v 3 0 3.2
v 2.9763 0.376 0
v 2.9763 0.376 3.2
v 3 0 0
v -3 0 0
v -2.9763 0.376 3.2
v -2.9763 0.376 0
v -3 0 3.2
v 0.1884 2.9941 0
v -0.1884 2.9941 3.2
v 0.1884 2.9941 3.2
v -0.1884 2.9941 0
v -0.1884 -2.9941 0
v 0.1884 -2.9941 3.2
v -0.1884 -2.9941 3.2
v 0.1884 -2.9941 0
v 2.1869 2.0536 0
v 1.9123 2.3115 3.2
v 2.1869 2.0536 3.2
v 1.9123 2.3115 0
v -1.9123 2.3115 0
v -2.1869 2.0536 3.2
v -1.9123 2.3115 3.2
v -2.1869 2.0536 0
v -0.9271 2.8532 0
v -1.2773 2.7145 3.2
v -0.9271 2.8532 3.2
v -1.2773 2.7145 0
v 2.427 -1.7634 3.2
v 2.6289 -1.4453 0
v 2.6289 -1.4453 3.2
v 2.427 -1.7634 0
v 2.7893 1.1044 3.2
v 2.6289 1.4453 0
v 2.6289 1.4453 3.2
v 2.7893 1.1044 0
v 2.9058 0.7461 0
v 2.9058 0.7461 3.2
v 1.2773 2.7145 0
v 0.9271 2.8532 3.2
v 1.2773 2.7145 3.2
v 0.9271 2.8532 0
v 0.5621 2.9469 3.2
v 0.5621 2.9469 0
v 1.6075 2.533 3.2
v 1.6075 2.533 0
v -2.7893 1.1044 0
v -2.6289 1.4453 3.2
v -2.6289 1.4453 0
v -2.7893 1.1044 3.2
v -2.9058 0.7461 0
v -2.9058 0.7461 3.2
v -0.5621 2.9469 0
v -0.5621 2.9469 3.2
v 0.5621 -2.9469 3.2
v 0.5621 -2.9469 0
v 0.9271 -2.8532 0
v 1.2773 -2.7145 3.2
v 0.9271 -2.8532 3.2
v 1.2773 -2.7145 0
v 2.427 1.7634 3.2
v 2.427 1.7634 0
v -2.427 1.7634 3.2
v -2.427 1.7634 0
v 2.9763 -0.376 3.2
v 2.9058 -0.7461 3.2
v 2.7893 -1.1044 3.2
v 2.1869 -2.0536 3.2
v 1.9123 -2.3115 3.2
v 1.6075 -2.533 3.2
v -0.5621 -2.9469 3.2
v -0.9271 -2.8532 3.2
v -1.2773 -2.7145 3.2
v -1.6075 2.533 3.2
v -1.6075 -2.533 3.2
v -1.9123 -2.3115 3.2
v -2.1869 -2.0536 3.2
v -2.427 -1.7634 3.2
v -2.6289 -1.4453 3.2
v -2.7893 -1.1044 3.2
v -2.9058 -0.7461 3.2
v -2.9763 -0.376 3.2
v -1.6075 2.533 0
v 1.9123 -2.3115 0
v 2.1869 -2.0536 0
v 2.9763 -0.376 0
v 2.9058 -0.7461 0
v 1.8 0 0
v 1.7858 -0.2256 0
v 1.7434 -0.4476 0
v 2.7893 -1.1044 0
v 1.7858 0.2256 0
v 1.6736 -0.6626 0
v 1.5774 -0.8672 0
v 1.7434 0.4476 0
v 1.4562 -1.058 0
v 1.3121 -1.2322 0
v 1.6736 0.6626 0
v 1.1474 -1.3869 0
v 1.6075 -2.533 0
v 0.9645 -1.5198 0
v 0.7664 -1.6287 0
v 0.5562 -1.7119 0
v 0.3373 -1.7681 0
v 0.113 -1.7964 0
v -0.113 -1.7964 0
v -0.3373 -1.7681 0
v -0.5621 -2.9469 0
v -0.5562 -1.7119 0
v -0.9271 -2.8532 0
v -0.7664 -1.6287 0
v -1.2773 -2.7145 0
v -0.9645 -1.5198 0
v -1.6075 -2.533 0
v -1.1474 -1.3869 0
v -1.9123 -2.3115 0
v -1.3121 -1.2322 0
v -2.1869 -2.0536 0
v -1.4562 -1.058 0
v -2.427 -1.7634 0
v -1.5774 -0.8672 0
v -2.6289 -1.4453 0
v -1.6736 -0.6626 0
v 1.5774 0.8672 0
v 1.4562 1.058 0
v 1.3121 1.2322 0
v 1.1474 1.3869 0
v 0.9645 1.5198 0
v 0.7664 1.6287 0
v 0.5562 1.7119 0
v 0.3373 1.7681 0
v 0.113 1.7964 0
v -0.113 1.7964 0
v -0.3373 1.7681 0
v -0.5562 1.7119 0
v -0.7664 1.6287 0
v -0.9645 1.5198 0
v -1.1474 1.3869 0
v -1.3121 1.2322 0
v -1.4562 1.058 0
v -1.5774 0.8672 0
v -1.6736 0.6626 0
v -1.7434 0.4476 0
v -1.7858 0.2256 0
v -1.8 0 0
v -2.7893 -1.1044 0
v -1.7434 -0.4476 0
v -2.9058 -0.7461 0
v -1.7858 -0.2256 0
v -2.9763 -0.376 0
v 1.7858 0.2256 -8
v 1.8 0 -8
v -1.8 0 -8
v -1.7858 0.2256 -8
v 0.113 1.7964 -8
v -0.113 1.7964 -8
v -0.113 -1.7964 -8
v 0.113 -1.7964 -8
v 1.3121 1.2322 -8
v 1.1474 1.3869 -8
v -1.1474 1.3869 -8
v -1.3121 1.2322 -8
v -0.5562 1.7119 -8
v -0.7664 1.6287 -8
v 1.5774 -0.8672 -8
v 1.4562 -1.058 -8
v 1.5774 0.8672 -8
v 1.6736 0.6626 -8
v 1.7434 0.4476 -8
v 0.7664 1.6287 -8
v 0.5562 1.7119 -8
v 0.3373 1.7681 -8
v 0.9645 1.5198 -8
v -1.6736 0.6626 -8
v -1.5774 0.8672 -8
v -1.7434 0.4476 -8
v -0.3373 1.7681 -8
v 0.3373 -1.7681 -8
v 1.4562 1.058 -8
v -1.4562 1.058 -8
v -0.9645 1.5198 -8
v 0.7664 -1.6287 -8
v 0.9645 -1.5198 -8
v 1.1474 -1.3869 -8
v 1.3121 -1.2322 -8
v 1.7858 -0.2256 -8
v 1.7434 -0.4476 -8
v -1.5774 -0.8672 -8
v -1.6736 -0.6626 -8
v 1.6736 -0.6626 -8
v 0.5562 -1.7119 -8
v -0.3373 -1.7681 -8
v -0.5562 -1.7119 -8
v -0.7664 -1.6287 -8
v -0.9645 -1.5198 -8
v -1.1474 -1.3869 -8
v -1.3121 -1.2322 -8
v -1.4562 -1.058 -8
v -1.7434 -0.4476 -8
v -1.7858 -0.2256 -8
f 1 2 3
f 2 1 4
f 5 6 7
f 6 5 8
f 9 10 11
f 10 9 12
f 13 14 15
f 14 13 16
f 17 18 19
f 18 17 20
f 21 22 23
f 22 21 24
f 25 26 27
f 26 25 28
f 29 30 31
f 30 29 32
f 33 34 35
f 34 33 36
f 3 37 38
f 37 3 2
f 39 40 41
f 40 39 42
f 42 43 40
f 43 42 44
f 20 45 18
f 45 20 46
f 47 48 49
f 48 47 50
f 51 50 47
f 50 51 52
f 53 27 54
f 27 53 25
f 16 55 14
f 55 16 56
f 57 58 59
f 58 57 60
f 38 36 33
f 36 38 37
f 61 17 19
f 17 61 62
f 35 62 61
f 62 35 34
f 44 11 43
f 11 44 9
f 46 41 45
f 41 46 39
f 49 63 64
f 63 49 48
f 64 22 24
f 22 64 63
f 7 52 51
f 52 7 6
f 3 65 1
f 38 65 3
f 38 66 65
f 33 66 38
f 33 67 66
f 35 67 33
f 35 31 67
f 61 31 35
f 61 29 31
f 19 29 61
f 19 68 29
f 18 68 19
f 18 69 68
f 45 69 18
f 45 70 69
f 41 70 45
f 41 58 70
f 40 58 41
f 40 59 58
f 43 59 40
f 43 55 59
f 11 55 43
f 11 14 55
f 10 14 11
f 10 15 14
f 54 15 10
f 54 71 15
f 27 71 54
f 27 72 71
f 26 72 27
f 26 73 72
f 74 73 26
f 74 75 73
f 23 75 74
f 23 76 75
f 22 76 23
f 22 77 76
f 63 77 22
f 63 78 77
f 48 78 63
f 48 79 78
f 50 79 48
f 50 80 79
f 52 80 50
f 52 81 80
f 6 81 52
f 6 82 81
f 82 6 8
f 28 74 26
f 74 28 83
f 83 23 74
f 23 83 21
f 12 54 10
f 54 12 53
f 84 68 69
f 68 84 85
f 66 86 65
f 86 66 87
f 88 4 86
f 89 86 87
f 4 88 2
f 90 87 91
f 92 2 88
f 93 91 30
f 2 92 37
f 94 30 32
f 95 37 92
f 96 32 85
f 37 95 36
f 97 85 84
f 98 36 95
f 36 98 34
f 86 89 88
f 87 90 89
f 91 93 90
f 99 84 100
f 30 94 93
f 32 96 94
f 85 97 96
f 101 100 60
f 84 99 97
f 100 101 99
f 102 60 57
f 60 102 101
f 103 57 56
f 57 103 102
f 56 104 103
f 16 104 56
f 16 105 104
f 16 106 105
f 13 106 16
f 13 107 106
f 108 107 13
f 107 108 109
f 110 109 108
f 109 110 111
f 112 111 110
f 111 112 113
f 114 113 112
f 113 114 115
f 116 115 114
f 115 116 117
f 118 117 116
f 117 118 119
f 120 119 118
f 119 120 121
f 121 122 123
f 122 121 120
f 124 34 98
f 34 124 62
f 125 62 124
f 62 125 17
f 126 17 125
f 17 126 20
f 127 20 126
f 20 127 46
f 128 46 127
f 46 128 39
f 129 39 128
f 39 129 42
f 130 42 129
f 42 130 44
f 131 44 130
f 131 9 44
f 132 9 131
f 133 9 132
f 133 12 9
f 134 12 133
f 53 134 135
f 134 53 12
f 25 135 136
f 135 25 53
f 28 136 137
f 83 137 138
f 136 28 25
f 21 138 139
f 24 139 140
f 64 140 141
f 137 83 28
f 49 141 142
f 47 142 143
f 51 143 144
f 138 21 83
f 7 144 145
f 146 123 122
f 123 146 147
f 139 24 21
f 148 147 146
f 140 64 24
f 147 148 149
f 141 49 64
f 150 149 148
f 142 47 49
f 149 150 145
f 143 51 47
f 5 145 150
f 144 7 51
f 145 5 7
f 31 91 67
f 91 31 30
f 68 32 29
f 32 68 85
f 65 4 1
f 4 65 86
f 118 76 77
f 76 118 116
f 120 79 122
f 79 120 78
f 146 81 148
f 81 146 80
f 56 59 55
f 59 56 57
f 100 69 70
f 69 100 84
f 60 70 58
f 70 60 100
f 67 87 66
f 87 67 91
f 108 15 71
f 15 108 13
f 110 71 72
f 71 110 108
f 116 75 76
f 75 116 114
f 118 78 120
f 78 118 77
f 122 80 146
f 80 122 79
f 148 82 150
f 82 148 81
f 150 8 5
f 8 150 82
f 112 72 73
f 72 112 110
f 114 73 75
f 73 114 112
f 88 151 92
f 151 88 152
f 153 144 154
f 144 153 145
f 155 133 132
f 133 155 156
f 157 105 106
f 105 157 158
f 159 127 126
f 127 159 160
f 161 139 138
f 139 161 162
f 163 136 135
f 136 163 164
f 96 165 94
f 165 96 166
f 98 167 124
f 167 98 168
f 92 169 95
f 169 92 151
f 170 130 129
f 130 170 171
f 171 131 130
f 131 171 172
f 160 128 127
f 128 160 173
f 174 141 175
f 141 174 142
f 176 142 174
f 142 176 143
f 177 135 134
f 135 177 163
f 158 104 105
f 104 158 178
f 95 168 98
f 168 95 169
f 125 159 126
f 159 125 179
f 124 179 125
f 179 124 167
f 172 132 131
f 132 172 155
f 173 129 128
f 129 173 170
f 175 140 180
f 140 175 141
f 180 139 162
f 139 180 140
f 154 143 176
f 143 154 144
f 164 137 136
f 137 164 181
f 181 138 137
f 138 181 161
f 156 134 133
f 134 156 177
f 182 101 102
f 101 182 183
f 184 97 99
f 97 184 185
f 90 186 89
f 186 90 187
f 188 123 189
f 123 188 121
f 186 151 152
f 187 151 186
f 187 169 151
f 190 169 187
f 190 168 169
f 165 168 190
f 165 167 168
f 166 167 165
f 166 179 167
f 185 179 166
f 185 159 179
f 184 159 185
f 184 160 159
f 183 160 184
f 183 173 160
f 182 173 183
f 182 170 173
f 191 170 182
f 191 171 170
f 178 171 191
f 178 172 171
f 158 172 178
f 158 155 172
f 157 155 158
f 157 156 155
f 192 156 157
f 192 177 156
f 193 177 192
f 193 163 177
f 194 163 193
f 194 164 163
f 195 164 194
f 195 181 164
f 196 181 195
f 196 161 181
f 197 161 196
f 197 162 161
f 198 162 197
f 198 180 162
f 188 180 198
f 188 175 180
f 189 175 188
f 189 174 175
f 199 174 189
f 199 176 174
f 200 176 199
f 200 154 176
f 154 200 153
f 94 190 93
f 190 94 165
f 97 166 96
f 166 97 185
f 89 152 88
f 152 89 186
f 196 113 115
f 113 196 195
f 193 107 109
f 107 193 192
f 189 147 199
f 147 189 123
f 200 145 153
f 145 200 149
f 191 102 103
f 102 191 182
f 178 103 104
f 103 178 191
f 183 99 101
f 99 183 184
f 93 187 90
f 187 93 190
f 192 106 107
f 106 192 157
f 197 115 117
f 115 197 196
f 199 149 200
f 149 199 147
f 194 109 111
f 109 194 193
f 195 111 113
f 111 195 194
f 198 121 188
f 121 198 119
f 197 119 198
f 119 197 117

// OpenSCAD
$fn = 50;


difference() {
	union() {
		translate(v = [0, 0, 0]) {
			rotate(a = [0, 0, 0]) {
				cylinder(h = 3.2000000000, r = 3.0000000000);
			}
		}
		translate(v = [0, 0, -8]) {
			rotate(a = [0, 0, 0]) {
				cylinder(h = 8, r = 1.8000000000);
			}
		}
	}
	union();
}
